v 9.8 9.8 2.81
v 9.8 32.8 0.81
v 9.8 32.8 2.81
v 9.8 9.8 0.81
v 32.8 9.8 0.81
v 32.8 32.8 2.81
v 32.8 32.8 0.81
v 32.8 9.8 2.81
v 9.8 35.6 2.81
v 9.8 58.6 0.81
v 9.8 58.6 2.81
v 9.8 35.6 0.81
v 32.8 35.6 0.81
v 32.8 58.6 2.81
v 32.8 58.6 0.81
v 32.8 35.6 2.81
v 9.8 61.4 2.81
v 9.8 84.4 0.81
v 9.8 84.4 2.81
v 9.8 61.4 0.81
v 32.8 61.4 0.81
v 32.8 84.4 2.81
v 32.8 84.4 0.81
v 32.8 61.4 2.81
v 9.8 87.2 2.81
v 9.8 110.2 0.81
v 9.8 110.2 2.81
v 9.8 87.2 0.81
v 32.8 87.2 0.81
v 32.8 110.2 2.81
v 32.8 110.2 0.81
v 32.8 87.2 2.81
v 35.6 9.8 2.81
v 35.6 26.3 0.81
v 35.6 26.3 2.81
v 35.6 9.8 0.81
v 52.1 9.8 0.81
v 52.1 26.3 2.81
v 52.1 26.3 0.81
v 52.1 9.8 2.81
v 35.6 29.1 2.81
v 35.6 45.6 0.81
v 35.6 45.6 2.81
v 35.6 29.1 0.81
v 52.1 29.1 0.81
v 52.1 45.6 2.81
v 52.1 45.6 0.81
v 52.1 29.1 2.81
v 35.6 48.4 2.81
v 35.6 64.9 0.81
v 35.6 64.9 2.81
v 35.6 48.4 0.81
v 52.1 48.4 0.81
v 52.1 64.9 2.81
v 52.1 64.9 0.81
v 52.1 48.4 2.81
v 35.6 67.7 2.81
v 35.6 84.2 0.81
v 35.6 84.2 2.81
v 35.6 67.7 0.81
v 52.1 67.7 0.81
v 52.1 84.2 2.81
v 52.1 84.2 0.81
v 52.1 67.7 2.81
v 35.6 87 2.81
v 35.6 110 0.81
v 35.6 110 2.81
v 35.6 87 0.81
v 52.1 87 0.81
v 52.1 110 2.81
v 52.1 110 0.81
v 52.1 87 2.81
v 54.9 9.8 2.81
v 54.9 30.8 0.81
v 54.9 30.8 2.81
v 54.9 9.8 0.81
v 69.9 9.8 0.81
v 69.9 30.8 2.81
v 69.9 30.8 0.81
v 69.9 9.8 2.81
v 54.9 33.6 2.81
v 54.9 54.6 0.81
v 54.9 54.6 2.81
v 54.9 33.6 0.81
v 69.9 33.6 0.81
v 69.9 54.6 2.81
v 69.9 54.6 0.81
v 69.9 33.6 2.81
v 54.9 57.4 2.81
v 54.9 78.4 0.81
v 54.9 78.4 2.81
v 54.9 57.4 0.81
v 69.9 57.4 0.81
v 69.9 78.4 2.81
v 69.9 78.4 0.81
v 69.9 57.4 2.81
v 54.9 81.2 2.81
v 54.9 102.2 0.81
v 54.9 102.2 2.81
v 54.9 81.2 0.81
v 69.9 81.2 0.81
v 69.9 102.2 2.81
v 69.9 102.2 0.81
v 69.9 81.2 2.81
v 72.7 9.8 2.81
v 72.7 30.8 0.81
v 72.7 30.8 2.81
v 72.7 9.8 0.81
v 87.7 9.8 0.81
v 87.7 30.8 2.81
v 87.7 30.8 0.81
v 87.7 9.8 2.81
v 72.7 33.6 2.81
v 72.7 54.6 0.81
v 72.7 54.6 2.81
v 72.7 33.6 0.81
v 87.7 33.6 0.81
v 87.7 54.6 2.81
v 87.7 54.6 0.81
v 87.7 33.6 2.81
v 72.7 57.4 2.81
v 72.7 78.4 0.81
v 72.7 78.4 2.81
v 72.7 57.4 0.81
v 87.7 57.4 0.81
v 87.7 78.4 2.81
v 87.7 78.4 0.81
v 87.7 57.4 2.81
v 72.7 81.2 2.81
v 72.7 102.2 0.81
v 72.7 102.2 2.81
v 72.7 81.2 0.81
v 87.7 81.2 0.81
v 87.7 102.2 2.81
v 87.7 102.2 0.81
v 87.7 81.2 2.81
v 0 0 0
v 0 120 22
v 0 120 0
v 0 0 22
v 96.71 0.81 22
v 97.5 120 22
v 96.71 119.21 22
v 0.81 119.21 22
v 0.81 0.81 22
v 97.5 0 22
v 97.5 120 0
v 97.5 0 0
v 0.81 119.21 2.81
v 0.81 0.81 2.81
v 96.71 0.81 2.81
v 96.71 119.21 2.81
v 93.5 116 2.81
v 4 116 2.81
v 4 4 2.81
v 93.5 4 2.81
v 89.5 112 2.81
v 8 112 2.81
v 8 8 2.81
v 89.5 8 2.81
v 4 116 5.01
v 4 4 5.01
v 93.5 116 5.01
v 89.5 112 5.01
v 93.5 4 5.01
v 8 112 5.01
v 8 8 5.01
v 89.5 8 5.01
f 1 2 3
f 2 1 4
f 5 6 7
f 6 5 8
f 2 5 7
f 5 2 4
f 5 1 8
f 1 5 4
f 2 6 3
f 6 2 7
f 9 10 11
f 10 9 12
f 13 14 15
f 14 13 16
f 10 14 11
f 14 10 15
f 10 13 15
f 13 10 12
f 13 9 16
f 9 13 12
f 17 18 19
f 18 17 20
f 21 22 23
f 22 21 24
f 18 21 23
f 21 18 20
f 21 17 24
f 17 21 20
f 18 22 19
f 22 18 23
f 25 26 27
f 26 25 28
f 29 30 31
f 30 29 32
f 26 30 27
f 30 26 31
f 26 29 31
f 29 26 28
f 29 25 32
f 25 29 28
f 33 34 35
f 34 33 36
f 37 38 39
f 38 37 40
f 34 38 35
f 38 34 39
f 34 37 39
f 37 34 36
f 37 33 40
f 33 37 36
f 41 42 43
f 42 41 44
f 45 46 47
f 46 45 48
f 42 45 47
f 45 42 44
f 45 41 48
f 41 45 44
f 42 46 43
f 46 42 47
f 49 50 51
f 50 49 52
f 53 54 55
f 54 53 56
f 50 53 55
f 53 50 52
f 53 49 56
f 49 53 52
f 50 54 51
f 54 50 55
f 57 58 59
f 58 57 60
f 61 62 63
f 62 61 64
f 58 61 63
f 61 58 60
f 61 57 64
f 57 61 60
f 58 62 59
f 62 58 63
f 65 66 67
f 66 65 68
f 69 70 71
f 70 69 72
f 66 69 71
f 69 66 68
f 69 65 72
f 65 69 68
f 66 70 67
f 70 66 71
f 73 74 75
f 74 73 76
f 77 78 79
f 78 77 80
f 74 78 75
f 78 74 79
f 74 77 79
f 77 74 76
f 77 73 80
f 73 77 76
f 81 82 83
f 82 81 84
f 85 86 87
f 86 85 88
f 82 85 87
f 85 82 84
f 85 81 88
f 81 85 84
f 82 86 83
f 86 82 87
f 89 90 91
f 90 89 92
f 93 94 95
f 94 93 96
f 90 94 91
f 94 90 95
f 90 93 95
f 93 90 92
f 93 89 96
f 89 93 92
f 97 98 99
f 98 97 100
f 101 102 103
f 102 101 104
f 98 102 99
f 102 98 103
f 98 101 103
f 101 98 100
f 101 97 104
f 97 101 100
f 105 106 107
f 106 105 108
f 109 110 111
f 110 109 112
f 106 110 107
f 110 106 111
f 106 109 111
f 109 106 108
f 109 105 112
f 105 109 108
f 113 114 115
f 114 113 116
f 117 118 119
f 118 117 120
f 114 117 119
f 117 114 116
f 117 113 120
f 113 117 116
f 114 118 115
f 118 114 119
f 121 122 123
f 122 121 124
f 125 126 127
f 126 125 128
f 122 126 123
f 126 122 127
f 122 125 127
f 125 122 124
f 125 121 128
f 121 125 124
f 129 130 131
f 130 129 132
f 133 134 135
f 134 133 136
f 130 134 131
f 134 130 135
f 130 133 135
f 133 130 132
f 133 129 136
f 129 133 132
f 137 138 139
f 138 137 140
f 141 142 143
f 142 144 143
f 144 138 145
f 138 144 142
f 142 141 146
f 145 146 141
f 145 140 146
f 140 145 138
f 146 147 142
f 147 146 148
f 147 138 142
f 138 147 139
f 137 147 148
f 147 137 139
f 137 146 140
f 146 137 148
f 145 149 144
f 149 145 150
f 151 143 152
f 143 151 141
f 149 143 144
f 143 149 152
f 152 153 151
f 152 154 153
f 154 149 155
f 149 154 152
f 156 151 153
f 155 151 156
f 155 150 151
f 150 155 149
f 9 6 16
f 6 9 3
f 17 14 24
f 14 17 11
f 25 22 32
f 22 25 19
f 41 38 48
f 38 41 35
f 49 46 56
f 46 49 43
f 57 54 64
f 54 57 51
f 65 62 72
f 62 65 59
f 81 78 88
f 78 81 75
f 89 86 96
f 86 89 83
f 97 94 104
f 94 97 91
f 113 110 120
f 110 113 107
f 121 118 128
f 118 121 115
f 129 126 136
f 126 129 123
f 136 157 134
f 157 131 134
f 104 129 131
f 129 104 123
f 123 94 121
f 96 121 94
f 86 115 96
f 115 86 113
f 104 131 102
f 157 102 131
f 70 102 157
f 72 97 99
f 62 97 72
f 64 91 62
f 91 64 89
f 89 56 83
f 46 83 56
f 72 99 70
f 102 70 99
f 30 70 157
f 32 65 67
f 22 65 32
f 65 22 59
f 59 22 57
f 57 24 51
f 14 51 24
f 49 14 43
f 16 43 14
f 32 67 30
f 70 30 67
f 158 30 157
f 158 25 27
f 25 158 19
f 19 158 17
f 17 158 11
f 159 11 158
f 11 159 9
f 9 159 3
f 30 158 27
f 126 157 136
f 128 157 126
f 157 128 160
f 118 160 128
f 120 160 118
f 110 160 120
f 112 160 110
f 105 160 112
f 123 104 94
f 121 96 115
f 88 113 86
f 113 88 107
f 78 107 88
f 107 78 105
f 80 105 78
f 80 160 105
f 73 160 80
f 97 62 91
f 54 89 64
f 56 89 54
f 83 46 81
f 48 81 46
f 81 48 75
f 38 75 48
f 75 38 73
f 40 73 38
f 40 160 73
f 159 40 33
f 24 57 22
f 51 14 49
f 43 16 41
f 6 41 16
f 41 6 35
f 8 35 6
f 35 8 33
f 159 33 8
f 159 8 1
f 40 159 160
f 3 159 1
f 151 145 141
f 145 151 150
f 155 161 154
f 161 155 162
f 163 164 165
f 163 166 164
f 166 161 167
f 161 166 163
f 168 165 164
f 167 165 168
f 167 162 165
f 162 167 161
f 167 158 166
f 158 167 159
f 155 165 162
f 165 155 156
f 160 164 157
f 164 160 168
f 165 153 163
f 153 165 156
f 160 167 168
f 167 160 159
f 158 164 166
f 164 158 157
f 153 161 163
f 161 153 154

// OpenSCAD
//units are in mm
$fn=20;

// Epsilon value
e = 0.01;

// Wall thickness
wall = .8;

// Outer border width
border = 8;

// mm clearance alongside each button
clearance = 6;

// Button size constants
a_diameter = 19 + clearance;
b_diameter = 12.5 + clearance;
y_length = 17 + clearance;
y_width = 11 + clearance;
x_length = 17 + clearance;
x_width = 11 + clearance;
start_diameter = 8 + clearance;
button_height = 20;

// How many sets of buttons
sets = 4;

module a_button() {
    translate([wall + 1, wall + 1, wall + e])
        cube([a_diameter - 2, a_diameter - 2, button_height]);
}

module b_button() {
    translate([wall + 1, wall + 1, wall + e])
        cube([b_diameter - 2, b_diameter - 2, button_height]);
}

module x_button() {
    translate([wall + 1, wall + 1, wall + e])
        cube([x_width - 2, x_length - 2, button_height]);
}

module start_buttons() {
    translate([wall + 1, wall + 1, wall + e])
        cube([b_diameter - 2, a_diameter - 2, button_height]);    // The 2nd term here is eye-balled
}

// Hexagonal mold keys
module key(r, h) {
    $fn=10;
    cylinder(h = 2.5, r = 2, center = false);
}

difference() {
    // Bounding box
    cube([2*border + a_diameter + b_diameter + x_width + y_width + 5*wall, 2*border + 4*a_diameter + 5*wall, button_height + 2]);

    // Bottom indents
    translate([wall + e, wall + e, 2 + wall + e])
        cube([2*border + a_diameter + b_diameter + 2*x_width + 3*wall, 2*border + 4*a_diameter + 3*wall, button_height]);

    translate([border, border, 0]) {

        // First collumn, A buttons
        translate([0, 0, 0]) {
            for(i = [0:sets - 1]) {
                translate([0, i * (wall + a_diameter), 0])
                    a_button();
            }
        }

        // Second collumn, B and start buttons
        translate([a_diameter + wall, 0, 0]) {
            for(i = [0:sets - 1]) {
                translate([0, i * (wall + b_diameter), 0])
                    b_button();
            }
            translate([0, 4 * (wall + b_diameter), 0])
                start_buttons();
        }

        // Third collumn, X buttons
        translate([a_diameter + b_diameter + 2 * wall, 0, 0]) {
            for(i = [0:sets - 1]) {
                translate([0, i * (wall + x_length), 0])
                    x_button();
            }
        }

        // Fourth collumn, Y buttons
        translate([a_diameter + b_diameter + x_width + 3 * wall, 0, 0]) {
            for(i = [0:sets - 1]) {
                translate([0, i * (wall + x_length), 0])
                    x_button();
            }
        }
    }
}

translate([border/2, border/2, e])
    cube([border/2, 110, 5]);
translate([90, border/2, e])
    cube([border/2, 110, 5]);
translate([border/2, border/2, e])
    cube([90, border/2, 5]);
translate([border/2, 113, e])
    cube([90, border/2, 5]);

/*
for(x=[0:4], y=[0:6]) {
    if(x==0 || x==4 || y==0 || y==6)
        translate([border/2 + x*22.20, border/2 + y*18.4, wall + 2])
            key();
}
*/

// Text
/*
   linear_extrude(height=4)
   translate([70, 90, 5])
   scale(.4)
   mirror()
   text("Shinewave");
*/
